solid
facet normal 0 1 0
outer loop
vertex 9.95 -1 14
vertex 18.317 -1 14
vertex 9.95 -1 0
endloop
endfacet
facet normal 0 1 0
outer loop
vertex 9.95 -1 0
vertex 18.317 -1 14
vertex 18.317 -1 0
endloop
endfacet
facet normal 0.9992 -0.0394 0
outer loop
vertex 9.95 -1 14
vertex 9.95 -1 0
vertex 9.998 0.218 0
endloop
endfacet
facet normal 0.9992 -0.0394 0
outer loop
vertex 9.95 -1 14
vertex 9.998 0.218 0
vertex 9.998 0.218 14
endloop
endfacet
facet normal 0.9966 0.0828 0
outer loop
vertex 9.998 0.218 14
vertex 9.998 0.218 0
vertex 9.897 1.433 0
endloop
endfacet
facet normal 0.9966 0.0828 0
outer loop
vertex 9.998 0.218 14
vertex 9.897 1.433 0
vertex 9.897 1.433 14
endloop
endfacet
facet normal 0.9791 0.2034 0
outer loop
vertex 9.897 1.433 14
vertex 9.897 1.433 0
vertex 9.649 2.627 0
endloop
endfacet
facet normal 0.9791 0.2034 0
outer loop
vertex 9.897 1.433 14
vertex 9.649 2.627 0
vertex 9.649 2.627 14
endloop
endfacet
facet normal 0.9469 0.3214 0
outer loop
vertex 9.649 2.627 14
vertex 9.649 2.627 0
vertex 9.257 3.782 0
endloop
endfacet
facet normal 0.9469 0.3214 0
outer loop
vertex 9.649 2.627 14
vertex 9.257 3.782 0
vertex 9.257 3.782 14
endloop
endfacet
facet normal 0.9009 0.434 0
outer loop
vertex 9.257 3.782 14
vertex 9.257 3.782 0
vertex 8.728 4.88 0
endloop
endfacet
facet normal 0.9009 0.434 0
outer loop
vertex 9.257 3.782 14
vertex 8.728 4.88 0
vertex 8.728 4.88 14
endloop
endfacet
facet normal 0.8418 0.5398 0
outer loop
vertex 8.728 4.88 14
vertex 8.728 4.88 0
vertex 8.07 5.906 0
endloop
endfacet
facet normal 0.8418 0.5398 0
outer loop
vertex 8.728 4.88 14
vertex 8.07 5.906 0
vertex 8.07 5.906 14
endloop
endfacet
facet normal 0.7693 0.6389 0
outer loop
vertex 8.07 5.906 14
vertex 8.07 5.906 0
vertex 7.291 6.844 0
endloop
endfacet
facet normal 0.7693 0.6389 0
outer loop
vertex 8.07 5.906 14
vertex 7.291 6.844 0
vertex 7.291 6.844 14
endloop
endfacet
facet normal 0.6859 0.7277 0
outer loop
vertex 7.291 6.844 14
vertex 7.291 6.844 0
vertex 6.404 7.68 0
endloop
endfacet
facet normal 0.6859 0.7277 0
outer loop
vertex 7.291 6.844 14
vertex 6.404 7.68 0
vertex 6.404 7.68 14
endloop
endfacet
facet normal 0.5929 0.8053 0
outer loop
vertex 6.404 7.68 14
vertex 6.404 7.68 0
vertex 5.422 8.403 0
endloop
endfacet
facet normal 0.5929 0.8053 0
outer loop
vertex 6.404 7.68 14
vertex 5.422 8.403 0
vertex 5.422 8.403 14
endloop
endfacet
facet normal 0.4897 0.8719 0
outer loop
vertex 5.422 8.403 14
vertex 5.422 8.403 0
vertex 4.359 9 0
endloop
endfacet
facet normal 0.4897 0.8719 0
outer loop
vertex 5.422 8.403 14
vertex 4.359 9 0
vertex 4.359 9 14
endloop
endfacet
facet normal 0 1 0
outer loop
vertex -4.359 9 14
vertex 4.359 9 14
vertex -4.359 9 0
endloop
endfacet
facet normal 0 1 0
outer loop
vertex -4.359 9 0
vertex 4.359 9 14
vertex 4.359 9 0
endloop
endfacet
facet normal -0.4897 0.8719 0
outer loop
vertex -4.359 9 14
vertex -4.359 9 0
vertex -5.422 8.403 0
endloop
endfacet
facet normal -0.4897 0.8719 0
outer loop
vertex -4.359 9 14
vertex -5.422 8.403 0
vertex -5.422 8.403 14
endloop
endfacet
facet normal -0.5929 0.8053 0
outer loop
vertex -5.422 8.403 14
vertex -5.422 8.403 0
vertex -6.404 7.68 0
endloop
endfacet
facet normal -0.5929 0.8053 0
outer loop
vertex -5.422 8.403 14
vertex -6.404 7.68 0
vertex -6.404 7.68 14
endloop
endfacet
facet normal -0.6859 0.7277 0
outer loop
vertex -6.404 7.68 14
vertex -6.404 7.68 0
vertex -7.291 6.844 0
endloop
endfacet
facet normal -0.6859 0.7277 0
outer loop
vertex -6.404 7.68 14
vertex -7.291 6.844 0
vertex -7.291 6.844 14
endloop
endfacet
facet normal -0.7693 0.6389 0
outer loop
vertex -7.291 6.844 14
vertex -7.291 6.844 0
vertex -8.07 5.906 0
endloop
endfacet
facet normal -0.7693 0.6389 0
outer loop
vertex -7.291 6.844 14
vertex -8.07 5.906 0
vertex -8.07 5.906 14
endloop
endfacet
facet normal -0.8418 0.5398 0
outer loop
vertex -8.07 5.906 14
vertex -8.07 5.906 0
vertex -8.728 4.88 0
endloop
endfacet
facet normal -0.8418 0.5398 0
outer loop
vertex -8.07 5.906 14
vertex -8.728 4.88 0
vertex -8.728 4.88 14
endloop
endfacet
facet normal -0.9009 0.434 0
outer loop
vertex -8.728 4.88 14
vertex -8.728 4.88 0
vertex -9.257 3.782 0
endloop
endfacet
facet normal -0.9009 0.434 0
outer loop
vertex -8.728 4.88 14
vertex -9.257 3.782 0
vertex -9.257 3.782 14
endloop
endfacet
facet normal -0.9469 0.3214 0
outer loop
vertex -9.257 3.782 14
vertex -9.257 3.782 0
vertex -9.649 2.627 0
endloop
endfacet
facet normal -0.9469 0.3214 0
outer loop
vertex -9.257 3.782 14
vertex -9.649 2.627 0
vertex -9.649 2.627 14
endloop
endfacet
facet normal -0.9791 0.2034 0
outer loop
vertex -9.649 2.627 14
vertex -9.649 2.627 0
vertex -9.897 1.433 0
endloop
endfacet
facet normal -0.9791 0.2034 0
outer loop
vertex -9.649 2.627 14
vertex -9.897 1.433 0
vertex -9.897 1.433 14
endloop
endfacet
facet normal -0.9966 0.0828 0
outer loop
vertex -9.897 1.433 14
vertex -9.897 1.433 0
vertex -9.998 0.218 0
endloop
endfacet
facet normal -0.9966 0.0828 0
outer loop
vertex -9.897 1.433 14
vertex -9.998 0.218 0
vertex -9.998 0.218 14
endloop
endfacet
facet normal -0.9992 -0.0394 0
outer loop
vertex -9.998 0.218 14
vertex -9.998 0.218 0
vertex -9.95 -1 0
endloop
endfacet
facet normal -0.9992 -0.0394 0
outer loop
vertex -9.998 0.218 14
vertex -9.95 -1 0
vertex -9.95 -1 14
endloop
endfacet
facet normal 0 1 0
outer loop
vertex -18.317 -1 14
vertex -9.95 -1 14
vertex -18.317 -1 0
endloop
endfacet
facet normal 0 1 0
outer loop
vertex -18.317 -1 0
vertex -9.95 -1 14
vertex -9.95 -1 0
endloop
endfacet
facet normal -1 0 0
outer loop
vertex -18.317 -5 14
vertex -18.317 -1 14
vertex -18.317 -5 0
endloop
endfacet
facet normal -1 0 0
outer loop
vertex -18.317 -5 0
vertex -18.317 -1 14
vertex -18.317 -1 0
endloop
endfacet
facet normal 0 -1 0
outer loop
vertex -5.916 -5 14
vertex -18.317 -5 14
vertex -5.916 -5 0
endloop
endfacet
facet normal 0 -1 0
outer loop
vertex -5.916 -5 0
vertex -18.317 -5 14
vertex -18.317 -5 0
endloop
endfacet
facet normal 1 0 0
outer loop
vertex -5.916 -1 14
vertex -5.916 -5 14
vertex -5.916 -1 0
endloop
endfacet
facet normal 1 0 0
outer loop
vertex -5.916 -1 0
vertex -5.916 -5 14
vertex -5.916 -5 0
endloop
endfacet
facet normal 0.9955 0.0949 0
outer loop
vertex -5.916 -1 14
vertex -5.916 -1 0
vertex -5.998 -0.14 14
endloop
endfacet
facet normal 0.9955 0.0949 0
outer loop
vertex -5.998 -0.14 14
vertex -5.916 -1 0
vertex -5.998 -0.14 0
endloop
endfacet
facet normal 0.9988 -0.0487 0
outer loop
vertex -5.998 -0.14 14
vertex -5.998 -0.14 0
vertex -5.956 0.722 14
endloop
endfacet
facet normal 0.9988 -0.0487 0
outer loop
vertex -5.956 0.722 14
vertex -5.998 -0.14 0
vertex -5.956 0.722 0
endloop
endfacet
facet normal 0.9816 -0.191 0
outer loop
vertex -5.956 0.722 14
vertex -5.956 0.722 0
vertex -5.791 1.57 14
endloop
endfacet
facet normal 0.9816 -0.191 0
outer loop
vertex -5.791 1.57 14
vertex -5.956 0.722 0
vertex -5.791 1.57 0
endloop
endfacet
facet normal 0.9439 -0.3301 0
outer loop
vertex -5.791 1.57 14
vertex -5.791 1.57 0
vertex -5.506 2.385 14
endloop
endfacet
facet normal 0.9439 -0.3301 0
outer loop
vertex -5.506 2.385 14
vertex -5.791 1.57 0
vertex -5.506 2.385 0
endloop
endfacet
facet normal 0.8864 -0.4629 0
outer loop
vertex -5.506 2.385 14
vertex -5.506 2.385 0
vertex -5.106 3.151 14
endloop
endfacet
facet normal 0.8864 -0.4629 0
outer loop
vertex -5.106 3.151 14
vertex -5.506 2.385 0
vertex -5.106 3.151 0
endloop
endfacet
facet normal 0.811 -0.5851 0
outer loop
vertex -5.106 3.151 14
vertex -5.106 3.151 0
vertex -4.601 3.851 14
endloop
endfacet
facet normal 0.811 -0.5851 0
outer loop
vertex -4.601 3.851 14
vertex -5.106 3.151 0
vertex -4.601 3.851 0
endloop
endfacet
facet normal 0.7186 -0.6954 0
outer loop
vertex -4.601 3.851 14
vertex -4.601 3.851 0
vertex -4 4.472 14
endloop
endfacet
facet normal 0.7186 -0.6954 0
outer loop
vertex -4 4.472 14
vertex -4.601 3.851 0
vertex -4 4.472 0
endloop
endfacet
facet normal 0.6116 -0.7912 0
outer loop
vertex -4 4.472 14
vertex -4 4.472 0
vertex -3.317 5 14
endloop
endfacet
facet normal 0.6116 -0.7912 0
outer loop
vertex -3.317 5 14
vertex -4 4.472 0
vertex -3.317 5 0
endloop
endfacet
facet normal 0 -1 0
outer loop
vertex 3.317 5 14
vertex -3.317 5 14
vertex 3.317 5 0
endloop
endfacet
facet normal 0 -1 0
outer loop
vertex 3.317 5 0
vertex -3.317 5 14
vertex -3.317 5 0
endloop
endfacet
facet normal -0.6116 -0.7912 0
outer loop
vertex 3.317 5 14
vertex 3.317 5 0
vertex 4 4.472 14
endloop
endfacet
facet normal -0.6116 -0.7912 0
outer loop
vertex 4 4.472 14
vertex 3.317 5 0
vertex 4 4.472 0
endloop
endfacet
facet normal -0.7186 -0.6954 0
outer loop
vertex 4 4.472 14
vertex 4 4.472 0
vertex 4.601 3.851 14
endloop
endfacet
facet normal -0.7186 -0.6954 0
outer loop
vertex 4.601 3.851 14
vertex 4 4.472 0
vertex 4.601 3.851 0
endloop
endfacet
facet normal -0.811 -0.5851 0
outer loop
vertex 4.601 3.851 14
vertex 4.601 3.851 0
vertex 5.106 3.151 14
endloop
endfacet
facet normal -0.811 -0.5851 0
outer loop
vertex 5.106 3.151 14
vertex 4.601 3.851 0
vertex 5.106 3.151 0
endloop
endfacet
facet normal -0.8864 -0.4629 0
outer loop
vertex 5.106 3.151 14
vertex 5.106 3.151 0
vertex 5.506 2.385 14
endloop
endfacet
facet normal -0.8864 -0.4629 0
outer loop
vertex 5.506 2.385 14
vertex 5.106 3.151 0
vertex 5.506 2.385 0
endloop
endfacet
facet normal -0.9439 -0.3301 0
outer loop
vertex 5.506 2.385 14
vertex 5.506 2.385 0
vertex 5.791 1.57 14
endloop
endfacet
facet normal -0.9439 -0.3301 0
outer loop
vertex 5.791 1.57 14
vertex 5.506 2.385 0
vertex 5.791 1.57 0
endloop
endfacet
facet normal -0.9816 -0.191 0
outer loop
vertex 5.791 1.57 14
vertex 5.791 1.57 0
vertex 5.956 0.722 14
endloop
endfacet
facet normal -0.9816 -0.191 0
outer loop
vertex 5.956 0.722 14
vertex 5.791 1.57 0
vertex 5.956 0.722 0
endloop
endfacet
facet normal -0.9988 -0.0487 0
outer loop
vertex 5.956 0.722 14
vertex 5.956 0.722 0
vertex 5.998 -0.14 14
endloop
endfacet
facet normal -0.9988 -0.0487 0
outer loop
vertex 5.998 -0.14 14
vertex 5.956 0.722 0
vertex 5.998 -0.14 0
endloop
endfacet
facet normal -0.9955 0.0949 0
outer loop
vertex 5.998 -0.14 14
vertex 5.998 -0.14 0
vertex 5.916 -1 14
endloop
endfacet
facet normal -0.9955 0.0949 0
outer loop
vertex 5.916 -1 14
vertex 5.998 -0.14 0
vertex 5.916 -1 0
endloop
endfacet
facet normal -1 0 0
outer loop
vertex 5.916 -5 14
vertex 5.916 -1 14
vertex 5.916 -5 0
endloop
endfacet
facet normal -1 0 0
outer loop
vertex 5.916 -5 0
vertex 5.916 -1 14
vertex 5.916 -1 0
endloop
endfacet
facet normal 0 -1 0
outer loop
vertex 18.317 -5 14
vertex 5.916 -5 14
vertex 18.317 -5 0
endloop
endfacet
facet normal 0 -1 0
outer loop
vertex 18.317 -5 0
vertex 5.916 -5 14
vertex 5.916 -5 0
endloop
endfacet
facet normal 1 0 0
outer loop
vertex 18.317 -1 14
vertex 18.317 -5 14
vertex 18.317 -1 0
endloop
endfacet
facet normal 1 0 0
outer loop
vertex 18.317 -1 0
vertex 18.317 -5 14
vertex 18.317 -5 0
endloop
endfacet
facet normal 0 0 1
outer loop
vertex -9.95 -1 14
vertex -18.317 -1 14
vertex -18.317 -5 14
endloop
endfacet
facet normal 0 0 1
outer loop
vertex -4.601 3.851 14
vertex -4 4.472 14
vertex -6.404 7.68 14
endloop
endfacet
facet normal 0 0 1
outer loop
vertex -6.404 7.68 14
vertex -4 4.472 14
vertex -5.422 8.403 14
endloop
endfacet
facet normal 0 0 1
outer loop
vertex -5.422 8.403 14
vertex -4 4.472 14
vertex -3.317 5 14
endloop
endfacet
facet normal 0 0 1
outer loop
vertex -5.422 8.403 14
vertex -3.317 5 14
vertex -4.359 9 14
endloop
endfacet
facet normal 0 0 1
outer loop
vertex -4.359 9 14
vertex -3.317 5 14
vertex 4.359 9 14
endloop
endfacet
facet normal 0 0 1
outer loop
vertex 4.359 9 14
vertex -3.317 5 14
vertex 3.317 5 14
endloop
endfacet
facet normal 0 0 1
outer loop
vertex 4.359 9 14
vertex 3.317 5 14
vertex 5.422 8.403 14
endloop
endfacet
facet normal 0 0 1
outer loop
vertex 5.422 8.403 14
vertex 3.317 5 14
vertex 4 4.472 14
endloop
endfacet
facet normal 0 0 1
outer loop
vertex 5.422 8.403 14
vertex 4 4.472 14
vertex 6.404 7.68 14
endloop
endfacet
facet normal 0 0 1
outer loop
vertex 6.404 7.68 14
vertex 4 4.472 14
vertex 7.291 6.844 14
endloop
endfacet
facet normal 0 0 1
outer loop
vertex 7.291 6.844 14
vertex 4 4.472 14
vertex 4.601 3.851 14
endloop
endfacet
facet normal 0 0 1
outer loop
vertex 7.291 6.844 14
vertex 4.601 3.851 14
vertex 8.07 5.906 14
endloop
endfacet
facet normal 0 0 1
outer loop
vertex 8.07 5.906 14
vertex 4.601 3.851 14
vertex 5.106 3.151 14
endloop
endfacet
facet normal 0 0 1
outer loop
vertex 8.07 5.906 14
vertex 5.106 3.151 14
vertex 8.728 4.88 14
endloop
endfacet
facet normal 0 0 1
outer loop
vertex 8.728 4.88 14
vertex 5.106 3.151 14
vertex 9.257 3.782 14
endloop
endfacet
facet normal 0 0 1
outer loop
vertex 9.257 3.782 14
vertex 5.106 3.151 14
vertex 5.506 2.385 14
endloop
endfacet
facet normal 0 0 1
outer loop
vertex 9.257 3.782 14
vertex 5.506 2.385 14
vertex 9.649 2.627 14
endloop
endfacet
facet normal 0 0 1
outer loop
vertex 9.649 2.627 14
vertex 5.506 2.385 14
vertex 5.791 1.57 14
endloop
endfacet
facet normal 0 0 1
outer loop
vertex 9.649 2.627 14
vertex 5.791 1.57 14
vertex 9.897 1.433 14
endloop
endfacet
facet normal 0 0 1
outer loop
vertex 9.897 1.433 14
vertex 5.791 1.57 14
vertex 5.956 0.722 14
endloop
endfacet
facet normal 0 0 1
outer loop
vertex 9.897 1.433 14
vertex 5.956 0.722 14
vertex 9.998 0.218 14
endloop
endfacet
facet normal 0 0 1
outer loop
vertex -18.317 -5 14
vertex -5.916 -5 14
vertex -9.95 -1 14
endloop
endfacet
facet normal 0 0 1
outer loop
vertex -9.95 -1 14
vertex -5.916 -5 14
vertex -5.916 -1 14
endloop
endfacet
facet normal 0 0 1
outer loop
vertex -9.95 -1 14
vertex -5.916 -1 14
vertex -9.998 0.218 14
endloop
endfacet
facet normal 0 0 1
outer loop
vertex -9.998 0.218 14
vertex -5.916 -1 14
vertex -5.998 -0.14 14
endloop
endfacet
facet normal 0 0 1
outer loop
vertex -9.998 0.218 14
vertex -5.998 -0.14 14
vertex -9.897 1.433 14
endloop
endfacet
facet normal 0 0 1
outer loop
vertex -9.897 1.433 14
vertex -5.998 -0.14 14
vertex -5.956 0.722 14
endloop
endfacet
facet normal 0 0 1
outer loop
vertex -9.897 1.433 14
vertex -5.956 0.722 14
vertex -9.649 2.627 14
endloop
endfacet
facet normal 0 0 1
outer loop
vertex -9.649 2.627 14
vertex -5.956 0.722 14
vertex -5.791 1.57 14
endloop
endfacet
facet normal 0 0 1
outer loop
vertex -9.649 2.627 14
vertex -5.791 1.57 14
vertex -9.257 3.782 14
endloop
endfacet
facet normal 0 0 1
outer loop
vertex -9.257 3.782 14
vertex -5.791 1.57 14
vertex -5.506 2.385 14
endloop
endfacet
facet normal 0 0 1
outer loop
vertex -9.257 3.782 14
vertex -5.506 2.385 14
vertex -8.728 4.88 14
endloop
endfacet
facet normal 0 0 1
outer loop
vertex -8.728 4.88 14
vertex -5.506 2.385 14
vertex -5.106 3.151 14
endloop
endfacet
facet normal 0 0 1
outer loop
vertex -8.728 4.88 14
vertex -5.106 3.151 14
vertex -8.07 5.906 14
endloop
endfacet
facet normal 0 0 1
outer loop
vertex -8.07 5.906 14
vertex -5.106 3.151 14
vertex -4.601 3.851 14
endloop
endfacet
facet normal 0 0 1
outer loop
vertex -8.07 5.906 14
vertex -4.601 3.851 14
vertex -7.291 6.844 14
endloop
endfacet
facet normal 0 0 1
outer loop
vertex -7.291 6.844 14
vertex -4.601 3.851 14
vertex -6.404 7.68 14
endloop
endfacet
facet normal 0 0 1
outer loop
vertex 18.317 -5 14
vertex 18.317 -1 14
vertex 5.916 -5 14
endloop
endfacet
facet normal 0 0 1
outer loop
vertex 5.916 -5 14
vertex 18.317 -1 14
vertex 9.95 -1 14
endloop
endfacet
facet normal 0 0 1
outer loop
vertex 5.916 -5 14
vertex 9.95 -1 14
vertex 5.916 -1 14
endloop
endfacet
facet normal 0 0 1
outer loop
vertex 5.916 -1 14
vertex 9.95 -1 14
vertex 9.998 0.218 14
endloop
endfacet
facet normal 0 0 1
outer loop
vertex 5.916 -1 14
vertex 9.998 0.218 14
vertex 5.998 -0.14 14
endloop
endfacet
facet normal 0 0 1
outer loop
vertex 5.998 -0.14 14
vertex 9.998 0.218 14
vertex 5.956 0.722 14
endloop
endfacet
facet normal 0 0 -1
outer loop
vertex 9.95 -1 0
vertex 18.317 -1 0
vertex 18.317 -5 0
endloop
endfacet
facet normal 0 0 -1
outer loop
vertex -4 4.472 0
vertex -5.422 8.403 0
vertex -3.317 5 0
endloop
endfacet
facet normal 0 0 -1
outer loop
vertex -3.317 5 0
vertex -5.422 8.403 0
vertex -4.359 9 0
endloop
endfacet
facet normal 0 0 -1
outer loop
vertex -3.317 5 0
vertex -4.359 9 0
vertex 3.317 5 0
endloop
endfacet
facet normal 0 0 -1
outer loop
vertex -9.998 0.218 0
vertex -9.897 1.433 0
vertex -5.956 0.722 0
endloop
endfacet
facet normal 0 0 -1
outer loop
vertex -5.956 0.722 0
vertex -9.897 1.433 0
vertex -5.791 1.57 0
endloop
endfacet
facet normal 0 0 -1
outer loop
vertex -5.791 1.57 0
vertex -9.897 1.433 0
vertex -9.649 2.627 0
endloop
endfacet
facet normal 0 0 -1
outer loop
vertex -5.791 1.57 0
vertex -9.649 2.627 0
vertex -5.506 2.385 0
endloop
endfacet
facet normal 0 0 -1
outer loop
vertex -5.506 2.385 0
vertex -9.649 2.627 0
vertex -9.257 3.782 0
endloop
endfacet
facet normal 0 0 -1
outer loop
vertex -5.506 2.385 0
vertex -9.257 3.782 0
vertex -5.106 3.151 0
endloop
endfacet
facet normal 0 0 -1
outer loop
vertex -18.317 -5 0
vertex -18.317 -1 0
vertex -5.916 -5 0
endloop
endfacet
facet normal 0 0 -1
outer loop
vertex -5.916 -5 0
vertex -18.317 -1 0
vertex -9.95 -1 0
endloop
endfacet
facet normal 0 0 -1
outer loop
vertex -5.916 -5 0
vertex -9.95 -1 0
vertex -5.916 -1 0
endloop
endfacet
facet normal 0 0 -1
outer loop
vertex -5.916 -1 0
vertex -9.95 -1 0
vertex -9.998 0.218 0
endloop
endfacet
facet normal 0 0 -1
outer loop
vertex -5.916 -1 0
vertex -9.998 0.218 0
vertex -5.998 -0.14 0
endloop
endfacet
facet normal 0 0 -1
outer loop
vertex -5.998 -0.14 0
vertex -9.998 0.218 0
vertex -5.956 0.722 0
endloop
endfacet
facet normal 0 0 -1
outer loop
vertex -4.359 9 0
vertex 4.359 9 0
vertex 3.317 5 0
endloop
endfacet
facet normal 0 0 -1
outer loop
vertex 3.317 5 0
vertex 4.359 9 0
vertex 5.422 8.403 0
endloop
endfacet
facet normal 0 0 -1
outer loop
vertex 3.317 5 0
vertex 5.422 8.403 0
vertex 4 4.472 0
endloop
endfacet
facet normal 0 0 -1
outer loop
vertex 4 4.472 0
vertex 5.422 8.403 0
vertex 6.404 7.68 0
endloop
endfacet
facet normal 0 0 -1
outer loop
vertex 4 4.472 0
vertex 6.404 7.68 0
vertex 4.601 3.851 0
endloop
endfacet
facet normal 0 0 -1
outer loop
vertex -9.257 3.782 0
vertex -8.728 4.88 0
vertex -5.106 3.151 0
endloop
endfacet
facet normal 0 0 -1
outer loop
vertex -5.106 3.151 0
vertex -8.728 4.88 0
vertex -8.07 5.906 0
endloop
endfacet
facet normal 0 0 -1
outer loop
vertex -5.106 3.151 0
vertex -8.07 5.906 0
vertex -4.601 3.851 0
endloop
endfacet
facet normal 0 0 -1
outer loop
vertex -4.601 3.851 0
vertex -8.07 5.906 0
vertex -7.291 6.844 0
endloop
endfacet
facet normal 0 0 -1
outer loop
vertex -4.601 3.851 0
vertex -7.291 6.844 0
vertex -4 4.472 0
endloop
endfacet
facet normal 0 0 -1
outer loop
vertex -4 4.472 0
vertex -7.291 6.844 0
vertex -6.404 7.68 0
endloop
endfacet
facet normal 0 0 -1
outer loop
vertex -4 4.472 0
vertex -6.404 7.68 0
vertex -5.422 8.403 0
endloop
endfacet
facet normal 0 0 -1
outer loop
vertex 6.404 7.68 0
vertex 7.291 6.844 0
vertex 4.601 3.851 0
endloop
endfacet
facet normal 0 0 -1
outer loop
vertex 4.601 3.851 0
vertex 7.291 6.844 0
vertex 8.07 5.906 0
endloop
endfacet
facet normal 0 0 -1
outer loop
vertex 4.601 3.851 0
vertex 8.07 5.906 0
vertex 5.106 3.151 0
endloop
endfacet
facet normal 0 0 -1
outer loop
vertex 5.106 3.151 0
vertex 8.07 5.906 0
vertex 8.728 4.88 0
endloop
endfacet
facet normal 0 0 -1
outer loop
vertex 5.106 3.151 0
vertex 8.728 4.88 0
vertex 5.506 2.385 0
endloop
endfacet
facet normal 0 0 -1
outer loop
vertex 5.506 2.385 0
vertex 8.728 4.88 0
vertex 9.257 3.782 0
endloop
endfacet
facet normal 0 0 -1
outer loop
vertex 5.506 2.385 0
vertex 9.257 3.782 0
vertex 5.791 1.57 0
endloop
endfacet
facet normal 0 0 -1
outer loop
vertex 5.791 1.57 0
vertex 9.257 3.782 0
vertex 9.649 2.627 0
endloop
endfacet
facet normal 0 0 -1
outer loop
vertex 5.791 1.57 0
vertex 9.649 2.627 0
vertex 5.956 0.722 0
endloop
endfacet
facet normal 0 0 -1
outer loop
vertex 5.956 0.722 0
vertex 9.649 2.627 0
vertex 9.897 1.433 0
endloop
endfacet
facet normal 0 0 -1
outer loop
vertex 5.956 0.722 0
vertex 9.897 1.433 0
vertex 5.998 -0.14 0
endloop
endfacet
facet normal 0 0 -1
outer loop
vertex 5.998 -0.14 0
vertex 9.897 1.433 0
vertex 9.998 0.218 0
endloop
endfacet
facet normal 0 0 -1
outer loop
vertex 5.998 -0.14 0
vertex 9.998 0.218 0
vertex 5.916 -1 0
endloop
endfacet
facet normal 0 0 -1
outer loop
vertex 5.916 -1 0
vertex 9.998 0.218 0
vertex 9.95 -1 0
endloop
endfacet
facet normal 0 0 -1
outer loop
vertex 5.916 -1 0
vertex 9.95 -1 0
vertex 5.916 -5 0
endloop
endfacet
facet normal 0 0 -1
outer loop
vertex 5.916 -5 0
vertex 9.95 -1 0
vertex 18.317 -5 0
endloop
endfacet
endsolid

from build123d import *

# Parameters (mm, degrees)
SALIENTE_EXTRUIR2_DEPTH = 14


with BuildPart() as part:
    # Croquis1 → Saliente-Extruir2 (new body)
    with BuildSketch(Plane.XY):
        with BuildLine():
            Line((-3.31662479, 5), (3.31662479, 5))
            ThreePointArc((3.31662479, 5), (5.505516182, 2.385223588), (5.916079783, -1))
            Line((5.916079783, -1), (5.916079783, -5))
            Line((5.916079783, -5), (18.31662479, -5))
            Line((18.31662479, -5), (18.31662479, -1))
            Line((18.31662479, -1), (9.949874371, -1))
            ThreePointArc((9.949874371, -1), (8.728416147, 4.88003602), (4.358898944, 9))
            Line((4.358898944, 9), (-4.358898944, 9))
            ThreePointArc((-4.358898944, 9), (-8.728416147, 4.88003602), (-9.949874371, -1))
            Line((-9.949874371, -1), (-18.31662479, -1))
            Line((-18.31662479, -1), (-18.31662479, -5))
            Line((-18.31662479, -5), (-5.916079783, -5))
            Line((-5.916079783, -5), (-5.916079783, -1))
            ThreePointArc((-5.916079783, -1), (-5.505516182, 2.385223588), (-3.31662479, 5))
        make_face()
    extrude(amount=SALIENTE_EXTRUIR2_DEPTH)


solid = part.part
